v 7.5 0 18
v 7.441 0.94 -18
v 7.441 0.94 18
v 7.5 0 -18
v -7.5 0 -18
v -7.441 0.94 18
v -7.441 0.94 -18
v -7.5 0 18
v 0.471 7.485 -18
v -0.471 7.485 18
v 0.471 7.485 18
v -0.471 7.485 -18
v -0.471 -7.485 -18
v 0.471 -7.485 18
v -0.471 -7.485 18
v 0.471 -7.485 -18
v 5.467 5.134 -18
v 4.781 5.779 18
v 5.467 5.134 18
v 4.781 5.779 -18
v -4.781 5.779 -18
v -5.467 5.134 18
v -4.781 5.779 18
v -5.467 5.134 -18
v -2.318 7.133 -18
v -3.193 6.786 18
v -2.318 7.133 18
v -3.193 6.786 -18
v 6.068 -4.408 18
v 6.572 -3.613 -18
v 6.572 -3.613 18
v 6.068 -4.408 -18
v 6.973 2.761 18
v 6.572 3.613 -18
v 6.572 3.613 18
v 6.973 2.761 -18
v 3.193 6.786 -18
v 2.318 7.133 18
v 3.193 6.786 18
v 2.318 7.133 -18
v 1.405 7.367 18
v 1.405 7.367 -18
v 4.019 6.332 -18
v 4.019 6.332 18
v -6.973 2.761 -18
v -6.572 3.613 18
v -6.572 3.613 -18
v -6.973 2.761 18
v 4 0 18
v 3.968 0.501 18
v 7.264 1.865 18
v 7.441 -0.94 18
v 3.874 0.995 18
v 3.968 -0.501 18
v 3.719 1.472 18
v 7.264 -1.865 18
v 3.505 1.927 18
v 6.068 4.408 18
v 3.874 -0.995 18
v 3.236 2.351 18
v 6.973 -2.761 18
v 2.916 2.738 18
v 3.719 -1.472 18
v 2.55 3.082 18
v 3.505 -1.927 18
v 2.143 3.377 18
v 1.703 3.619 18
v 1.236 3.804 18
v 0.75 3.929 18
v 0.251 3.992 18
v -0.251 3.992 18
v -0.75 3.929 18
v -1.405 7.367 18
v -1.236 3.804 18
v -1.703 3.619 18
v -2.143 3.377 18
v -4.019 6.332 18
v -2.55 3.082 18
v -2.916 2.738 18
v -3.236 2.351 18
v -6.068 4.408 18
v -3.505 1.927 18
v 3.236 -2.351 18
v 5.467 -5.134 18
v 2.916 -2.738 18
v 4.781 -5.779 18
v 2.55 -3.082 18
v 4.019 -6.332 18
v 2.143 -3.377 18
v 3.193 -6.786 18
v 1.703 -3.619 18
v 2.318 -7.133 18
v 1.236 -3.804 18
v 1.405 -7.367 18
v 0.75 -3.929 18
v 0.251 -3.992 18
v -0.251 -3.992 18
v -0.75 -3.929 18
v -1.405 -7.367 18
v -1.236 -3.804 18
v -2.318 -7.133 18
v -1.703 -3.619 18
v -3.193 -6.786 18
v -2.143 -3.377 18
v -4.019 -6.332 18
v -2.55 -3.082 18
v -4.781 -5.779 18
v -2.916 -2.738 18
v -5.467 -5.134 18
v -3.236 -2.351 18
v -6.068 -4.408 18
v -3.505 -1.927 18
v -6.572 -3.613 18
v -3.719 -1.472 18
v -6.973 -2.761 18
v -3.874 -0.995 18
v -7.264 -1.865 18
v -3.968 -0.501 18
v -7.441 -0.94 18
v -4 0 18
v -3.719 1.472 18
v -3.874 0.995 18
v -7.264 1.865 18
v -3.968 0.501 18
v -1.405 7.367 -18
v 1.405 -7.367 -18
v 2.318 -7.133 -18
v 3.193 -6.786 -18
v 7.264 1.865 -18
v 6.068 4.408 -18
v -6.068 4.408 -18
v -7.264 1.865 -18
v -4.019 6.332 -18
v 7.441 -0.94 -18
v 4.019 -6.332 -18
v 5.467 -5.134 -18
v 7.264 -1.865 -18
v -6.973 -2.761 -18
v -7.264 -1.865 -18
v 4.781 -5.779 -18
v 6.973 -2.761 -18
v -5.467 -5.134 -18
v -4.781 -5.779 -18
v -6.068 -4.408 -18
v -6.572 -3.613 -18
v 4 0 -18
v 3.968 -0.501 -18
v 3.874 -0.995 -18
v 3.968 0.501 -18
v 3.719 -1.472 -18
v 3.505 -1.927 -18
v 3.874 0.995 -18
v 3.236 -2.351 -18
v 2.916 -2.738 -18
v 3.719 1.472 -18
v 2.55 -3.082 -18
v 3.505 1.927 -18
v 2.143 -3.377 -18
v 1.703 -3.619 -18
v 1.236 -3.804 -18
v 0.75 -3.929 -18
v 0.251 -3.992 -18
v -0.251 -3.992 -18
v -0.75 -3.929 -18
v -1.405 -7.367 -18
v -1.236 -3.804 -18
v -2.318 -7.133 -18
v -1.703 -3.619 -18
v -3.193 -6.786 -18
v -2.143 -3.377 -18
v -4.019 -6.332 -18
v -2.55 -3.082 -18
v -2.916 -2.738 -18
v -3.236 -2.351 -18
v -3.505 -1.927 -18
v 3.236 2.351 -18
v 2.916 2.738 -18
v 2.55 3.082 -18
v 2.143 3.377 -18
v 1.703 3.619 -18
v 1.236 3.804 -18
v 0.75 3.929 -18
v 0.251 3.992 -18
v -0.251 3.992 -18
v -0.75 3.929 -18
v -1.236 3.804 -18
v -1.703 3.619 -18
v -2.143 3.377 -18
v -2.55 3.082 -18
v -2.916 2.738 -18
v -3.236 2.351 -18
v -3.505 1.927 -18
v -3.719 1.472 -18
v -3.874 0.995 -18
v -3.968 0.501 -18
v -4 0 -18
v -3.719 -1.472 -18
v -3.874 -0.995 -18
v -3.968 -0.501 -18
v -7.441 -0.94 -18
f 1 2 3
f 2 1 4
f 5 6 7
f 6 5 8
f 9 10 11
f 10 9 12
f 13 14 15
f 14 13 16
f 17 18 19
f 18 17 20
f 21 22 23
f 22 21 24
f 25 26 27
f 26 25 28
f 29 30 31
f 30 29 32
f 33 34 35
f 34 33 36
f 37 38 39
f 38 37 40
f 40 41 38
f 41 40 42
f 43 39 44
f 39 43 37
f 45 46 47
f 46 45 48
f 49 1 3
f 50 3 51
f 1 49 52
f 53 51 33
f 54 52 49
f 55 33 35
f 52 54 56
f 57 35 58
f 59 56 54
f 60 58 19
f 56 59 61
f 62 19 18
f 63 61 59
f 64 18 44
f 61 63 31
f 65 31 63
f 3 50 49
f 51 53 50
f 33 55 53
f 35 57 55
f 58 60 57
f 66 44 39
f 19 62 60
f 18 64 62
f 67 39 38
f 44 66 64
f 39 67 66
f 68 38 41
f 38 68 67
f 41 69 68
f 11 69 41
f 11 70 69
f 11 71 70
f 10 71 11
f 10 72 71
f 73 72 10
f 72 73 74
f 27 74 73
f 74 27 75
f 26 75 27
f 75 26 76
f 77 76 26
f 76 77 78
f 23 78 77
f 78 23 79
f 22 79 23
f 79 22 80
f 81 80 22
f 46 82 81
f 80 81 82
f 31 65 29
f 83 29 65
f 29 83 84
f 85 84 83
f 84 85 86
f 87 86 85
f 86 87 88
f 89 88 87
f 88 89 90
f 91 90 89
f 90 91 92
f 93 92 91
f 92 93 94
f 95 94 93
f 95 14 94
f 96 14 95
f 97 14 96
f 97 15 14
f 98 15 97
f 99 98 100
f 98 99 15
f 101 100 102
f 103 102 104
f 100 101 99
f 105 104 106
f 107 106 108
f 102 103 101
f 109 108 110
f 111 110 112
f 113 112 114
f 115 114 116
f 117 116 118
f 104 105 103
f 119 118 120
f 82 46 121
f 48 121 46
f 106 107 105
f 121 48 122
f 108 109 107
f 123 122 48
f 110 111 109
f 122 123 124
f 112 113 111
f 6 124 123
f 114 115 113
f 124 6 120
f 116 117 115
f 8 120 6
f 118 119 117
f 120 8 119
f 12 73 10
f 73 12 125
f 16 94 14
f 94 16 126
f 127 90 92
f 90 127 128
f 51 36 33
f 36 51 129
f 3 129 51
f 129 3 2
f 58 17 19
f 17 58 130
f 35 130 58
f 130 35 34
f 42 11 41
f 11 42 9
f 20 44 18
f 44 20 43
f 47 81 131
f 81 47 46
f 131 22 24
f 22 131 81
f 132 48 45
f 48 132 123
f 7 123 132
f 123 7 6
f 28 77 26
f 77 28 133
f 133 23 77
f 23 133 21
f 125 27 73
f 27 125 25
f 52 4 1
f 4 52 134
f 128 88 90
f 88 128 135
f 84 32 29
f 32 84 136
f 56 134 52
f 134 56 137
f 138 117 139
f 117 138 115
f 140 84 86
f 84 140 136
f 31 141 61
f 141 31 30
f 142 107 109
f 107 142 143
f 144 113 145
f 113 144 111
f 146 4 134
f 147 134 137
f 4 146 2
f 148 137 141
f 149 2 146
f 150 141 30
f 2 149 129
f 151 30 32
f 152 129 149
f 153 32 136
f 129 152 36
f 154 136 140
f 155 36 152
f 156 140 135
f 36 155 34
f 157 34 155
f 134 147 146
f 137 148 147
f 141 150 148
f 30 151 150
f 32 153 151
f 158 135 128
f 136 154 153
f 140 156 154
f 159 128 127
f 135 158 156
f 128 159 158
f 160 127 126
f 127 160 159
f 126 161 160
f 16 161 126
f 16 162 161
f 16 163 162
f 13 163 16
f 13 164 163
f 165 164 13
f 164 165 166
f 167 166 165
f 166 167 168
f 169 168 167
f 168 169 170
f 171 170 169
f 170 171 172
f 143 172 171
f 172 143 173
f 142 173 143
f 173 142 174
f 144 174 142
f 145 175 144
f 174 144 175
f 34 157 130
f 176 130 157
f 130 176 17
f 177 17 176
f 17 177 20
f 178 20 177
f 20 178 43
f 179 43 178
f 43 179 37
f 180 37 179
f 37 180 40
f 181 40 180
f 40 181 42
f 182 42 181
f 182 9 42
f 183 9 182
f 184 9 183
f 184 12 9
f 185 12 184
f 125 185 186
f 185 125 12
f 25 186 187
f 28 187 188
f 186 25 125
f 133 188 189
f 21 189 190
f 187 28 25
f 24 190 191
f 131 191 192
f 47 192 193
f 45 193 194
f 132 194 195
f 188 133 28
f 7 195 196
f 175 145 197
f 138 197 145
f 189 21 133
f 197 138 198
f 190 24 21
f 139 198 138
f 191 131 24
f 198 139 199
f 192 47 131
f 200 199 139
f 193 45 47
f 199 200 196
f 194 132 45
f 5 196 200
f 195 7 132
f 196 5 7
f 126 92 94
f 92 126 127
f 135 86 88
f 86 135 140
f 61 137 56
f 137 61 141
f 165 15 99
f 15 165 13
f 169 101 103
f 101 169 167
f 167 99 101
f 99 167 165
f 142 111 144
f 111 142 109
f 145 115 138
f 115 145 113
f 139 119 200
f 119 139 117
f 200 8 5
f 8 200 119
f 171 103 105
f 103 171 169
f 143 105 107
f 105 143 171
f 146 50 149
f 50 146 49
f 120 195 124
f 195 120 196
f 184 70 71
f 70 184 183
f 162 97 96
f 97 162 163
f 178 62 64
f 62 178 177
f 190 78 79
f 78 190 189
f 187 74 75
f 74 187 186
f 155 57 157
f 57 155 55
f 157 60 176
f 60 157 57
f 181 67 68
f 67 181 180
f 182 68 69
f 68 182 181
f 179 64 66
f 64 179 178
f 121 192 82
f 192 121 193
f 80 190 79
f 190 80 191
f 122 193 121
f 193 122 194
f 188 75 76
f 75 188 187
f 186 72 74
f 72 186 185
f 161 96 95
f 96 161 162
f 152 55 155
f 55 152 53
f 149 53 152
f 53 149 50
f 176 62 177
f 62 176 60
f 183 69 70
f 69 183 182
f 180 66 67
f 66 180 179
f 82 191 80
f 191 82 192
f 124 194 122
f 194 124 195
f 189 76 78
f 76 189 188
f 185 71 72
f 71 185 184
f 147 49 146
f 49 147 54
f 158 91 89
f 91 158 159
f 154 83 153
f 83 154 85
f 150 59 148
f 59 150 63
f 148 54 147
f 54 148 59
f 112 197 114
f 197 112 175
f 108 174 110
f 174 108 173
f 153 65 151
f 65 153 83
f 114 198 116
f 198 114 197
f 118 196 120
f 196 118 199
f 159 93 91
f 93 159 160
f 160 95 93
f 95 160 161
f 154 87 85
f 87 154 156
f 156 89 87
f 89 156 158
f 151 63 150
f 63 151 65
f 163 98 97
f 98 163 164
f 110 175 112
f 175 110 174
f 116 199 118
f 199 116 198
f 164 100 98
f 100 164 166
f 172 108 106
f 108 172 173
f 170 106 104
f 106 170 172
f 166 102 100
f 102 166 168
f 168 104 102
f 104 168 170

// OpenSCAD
$fn = 50;


difference() {
	union() {
		translate(v = [0, 0, -18.0000000000]) {
			cylinder(h = 36, r = 7.5000000000);
		}
	}
	union() {
		translate(v = [0, 0, -100.0000000000]) {
			cylinder(h = 200, r = 4.0000000000);
		}
	}
}
